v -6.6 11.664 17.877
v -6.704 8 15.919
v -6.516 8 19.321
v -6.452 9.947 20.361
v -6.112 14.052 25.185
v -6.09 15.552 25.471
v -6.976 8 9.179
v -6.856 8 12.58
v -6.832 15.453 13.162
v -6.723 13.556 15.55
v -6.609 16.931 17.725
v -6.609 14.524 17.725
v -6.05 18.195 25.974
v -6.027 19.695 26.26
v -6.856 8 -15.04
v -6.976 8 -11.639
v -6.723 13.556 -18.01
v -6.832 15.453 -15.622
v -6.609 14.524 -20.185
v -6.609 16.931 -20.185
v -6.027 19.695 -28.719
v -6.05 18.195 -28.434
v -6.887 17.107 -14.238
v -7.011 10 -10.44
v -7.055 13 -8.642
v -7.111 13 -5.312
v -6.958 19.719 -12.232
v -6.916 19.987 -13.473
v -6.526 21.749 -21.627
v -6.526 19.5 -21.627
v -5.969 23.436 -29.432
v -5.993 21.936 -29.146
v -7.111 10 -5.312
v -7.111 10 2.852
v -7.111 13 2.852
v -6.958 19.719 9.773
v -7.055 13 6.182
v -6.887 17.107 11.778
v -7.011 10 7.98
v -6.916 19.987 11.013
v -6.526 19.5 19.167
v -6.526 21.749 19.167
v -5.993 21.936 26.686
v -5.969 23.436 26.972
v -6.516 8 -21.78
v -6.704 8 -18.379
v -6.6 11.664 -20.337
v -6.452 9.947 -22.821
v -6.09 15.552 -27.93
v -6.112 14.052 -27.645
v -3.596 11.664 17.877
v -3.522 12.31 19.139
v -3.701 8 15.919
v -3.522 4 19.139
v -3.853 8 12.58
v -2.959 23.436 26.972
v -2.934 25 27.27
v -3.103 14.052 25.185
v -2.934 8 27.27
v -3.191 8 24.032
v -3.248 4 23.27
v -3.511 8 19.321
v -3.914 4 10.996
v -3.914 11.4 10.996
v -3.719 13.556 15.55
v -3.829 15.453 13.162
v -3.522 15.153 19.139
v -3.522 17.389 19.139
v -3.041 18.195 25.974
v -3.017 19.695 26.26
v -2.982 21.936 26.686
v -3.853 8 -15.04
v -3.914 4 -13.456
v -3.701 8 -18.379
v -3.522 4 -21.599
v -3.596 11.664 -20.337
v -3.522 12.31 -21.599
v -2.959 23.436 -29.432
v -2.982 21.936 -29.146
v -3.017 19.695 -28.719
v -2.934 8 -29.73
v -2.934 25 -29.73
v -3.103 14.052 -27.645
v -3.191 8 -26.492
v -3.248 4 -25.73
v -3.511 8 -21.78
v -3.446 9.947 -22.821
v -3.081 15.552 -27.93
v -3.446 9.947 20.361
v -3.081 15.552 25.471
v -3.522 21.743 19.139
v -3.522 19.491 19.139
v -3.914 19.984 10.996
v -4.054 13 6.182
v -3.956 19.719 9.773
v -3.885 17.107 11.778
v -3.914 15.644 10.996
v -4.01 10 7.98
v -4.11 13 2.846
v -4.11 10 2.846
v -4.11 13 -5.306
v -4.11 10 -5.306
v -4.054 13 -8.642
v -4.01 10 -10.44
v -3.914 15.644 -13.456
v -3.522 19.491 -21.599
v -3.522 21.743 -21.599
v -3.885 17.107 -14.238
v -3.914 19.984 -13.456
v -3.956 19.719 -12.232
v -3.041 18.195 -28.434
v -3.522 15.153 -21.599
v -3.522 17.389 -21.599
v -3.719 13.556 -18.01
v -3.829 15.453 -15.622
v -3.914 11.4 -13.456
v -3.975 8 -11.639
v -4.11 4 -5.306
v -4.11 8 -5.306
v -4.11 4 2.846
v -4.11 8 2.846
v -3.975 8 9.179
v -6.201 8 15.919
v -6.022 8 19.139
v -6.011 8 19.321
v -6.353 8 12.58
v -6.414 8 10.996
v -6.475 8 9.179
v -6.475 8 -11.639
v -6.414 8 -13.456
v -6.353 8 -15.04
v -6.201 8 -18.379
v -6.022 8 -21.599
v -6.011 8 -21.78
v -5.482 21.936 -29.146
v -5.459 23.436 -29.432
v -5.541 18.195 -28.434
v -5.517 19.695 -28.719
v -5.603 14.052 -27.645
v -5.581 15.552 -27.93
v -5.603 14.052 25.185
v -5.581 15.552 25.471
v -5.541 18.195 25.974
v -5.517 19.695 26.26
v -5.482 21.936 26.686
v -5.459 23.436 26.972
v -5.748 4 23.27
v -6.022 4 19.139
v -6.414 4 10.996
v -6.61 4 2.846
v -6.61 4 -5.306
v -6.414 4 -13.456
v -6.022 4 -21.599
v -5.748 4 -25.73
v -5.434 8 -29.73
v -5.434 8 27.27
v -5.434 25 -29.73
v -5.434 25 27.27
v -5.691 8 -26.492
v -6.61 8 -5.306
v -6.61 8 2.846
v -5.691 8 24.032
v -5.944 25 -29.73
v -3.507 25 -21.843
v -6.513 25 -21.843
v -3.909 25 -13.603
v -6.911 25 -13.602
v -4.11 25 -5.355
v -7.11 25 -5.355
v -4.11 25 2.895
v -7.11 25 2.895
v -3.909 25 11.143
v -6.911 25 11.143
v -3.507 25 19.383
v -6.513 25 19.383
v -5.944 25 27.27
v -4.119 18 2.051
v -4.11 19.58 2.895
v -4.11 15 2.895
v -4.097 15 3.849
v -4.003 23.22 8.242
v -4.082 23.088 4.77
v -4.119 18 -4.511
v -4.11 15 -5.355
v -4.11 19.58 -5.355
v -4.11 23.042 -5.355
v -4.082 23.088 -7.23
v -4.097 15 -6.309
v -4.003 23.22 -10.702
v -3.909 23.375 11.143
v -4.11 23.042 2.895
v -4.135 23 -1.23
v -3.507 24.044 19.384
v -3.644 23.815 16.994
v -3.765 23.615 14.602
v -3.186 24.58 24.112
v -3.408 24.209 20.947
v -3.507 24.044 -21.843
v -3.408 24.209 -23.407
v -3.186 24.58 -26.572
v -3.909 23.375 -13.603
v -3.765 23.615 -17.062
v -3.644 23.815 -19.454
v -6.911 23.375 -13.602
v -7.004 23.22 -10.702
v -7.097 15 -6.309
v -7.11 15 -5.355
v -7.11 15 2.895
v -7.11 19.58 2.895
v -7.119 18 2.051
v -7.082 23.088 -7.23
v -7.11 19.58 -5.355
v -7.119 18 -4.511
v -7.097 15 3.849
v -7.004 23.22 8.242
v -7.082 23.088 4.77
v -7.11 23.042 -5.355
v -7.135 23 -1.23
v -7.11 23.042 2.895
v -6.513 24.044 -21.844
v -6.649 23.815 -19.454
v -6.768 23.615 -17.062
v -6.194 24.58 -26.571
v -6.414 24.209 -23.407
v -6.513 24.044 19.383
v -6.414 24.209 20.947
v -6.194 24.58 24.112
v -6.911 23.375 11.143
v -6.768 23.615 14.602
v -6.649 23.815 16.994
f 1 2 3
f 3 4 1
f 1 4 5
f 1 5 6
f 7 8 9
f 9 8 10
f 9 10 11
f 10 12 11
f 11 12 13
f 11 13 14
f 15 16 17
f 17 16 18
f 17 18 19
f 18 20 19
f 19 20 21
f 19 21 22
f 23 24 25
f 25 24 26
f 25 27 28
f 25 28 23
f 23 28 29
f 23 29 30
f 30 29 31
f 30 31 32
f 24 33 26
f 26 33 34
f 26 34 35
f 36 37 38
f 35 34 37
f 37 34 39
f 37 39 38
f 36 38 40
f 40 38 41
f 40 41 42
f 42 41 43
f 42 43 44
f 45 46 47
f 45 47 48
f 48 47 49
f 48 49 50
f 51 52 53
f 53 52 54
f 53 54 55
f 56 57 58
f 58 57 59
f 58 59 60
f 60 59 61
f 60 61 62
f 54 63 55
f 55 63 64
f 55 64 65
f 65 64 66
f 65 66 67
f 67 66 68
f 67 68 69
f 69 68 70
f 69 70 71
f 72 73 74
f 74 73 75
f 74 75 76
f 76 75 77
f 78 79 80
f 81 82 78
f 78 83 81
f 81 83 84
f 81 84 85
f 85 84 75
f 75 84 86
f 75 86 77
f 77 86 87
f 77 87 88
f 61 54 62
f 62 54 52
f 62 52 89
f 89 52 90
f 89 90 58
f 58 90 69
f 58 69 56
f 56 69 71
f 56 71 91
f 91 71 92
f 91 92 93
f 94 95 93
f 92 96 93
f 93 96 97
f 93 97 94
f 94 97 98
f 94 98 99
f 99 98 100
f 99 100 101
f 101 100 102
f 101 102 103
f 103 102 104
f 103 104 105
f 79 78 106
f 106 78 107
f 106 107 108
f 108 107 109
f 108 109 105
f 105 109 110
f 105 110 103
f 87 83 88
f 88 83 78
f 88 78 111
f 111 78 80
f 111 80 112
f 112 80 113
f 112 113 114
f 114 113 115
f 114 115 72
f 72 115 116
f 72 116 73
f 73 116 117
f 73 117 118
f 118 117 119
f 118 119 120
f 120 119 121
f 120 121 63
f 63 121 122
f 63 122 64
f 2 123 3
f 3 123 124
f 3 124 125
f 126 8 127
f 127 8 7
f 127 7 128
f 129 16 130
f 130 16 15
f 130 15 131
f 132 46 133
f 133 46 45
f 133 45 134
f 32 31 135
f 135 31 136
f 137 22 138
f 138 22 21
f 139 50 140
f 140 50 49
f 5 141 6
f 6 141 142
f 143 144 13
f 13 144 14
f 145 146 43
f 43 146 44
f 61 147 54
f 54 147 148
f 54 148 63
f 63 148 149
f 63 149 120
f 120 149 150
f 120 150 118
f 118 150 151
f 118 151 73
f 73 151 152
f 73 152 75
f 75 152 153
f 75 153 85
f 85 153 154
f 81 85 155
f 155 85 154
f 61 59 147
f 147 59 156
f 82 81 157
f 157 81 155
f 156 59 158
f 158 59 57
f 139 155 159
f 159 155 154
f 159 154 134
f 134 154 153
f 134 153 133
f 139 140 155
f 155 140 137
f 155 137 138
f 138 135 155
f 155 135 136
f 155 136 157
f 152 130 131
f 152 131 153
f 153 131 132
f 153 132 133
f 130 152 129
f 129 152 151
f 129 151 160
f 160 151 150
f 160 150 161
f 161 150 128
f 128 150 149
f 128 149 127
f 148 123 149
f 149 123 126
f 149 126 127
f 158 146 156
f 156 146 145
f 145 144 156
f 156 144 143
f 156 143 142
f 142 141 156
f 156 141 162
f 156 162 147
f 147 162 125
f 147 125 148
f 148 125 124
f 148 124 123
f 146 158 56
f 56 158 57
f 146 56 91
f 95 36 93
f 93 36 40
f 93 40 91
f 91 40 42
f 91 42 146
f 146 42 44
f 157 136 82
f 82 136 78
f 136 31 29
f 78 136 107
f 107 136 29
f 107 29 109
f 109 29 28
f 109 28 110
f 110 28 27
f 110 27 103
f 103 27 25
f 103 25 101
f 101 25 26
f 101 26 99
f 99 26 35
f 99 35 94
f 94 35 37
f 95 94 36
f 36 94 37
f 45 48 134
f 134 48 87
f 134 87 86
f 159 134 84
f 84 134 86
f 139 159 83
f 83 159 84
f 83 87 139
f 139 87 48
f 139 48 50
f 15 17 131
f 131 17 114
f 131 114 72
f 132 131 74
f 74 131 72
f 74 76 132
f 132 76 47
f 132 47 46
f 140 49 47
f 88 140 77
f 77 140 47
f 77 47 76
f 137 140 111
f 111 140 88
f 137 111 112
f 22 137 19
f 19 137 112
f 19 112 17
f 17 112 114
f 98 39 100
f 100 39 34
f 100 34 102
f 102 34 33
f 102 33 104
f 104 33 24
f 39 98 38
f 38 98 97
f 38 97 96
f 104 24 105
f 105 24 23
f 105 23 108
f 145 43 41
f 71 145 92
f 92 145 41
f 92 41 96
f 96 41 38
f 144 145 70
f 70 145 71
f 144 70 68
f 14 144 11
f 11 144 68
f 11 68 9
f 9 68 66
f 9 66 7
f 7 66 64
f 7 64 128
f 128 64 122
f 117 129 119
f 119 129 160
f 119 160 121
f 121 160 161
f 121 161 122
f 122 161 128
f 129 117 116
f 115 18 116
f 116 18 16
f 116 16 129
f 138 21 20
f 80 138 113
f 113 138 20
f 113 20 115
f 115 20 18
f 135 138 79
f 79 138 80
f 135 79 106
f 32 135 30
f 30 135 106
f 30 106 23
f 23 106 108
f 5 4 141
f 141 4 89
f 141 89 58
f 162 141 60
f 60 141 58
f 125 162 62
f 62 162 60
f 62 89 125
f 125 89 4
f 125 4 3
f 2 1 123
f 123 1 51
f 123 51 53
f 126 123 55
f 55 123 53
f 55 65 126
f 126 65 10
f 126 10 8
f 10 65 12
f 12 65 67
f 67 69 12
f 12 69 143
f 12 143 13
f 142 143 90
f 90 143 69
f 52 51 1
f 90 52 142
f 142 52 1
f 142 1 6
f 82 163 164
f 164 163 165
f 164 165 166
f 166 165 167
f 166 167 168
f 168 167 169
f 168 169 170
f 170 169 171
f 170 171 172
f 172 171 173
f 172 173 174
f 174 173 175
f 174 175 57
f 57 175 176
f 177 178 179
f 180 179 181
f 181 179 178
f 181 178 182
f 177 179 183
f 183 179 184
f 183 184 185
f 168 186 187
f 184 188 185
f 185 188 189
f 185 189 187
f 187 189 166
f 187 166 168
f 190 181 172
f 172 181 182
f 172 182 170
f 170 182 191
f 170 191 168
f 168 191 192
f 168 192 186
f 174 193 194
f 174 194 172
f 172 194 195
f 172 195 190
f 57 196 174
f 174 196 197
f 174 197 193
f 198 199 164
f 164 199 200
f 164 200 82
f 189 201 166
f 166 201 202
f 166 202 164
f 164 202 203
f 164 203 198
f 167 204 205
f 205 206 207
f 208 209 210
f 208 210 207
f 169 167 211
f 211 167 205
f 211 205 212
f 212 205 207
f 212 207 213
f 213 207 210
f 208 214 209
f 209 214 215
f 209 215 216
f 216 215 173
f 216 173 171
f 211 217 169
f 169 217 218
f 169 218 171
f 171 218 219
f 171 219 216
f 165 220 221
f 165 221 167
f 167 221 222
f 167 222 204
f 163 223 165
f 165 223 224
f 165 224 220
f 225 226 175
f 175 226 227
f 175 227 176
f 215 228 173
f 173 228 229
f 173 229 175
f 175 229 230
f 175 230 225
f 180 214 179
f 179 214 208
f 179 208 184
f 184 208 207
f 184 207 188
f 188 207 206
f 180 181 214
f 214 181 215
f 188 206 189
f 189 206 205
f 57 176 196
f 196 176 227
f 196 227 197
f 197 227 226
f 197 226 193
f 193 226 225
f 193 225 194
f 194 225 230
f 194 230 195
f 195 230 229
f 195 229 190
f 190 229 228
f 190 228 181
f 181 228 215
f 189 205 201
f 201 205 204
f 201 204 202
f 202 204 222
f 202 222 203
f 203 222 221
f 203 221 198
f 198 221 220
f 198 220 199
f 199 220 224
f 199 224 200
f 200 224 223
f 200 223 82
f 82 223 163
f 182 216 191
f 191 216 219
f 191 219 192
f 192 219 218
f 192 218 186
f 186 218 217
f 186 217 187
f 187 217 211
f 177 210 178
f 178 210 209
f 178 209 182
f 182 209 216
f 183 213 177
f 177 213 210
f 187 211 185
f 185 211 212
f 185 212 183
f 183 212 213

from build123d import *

# Parameters (mm, degrees)
BOSS_EXTRUDE1_DEPTH      = 25
CUT_EXTRUDE1_DEPTH       = 80.24352506
CUT_EXTRUDE1_DEPTH_BACK  = 80.24352506
SKETCH4_W                = 163.693306888
SKETCH4_H                = 40.024571377
CUT_EXTRUDE3_START       = 2.86496876
CUT_EXTRUDE3_DEPTH       = 1.701411362
CUT_EXTRUDE3_START_2     = 4
CUT_EXTRUDE3_2_DEPTH     = 21
CUT_EXTRUDE3_START_3     = -19
CUT_EXTRUDE3_3_OUTLINE_W = 1.566380122
CUT_EXTRUDE3_3_OUTLINE_H = 41.625991854
CUT_EXTRUDE3_3_DEPTH     = 3.634613826
CUT_EXTRUDE3_START_4     = -15.365386174
CUT_EXTRUDE3_4_OUTLINE_W = 1.566380122
CUT_EXTRUDE3_4_OUTLINE_H = 4.374008146
CUT_EXTRUDE3_4_DEPTH     = 52.325901807
CUT_EXTRUDE8_DEPTH       = 40.481678639
CUT_EXTRUDE8_DEPTH_BACK  = 40.481678639


with BuildPart() as part:
    # Sketch1 → Boss-Extrude1 (new body)
    with BuildSketch(Plane(origin=(0, 0, 0), x_dir=(1, 0, 0), z_dir=(0, 1, 0))):
        with BuildLine():
            Line((4.907868645, 71.729937519), (8.36496876, 71.729937519))
            Line((8.36496876, 71.729937519), (8.36496876, 74.729937519))
            Line((8.36496876, 74.729937519), (4.907868645, 74.729937519))
            ThreePointArc((4.907868645, 74.729937519), (1.752478587, 73.608534376), (0.01247426, 70.74734295))
            ThreePointArc((0.01247426, 70.74734295), (-7.13503124, 1.229937519), (0.01247426, -68.287467911))
            ThreePointArc((0.01247426, -68.287467911), (1.752478587, -71.148659338), (4.907868645, -72.270062481))
            Line((4.907868645, -72.270062481), (8.36496876, -72.270062481))
            Line((8.36496876, -72.270062481), (8.36496876, -69.270062481))
            Line((8.36496876, -69.270062481), (4.907868645, -69.270062481))
            ThreePointArc((4.907868645, -69.270062481), (3.645712622, -68.821501224), (2.949710891, -67.677024653))
            ThreePointArc((2.949710891, -67.677024653), (-4.13503124, 1.229937519), (2.949710891, 70.136899691))
            ThreePointArc((2.949710891, 70.136899691), (3.645712622, 71.281376262), (4.907868645, 71.729937519))
        make_face()
    extrude(amount=BOSS_EXTRUDE1_DEPTH)

    # Sketch4 → Cut-Extrude1 (cut, two sides: drawn at the far end of the back side and taken through both)
    with BuildSketch(Plane(origin=(0, 0, 0), x_dir=(0, 0, -1), z_dir=(1, 0, 0)).offset(-CUT_EXTRUDE1_DEPTH_BACK)):
        with Locations((-1.406411494, 10.890491369)):
            Rectangle(SKETCH4_W, SKETCH4_H)
        Polygon((25.729937519, 4), (-23.270062481, 4), (-27.270062481, 8), (-27.270062481, 25), (29.729937519, 25), (29.729937519, 8), align=None, mode=Mode.SUBTRACT)
    extrude(amount=CUT_EXTRUDE1_DEPTH + CUT_EXTRUDE1_DEPTH_BACK, mode=Mode.SUBTRACT)

    # Cut-Extrude3: read off the stored shape, not the designer's step
    # Cut-Extrude3 outline → Cut-Extrude3 (cut)
    with BuildSketch(Plane(origin=(-10, 0, 0), x_dir=(0, 0, -1), z_dir=(1, 0, 0)).offset(CUT_EXTRUDE3_START)):
        Polygon((26.491842281, 8), (-24.031967243, 8), (-27.270062481, 25), (-27.270062481, 8), (-23.270062481, 4), (25.729937519, 4), (29.729937519, 8), (29.729937519, 25), align=None)
    extrude(amount=CUT_EXTRUDE3_DEPTH, mode=Mode.SUBTRACT)

    # Cut-Extrude3 2 outline → Cut-Extrude3 2 (add)
    with BuildSketch(Plane(origin=(0, 0, 0), x_dir=(1, 0, 0), z_dir=(0, 1, 0)).offset(CUT_EXTRUDE3_START_2)):
        with BuildLine():
            ThreePointArc((-5.433619878, 29.729937519), (-6.63503124, 1.229937519), (-5.433619878, -27.270062481))
            Line((-5.433619878, -27.270062481), (-5.433619878, 29.729937519))
        make_face()
    extrude(amount=CUT_EXTRUDE3_2_DEPTH)

    # Cut-Extrude3 3 outline → Cut-Extrude3 3 (cut)
    with BuildSketch(Plane(origin=(0, 0, 0), x_dir=(1, 0, 0), z_dir=(0, 0.7071067811865476, 0.7071067811865476)).offset(CUT_EXTRUDE3_START_3)):
        with Locations((-6.216809939, 7.187004073)):
            Rectangle(CUT_EXTRUDE3_3_OUTLINE_W, CUT_EXTRUDE3_3_OUTLINE_H)
    extrude(amount=CUT_EXTRUDE3_3_DEPTH, mode=Mode.SUBTRACT)

    # Cut-Extrude3 4 outline → Cut-Extrude3 4 (cut)
    with BuildSketch(Plane(origin=(0, 0, 0), x_dir=(1, 0, 0), z_dir=(0, 0.7071067811865476, 0.7071067811865476)).offset(CUT_EXTRUDE3_START_4)):
        with Locations((-6.216809939, -15.812995927)):
            Rectangle(CUT_EXTRUDE3_4_OUTLINE_W, CUT_EXTRUDE3_4_OUTLINE_H)
    extrude(amount=CUT_EXTRUDE3_4_DEPTH, mode=Mode.SUBTRACT)

    # Sketch8 → Cut-Extrude8 (cut, two sides: drawn at the far end of the back side and taken through both)
    with BuildSketch(Plane(origin=(-10, 0, 0), x_dir=(0, 0, -1), z_dir=(1, 0, 0)).offset(-CUT_EXTRUDE8_DEPTH_BACK)):
        with BuildLine():
            Line((6.308934185, 15), (1.229937519, 15))
            Line((1.229937519, 15), (1.229937519, 13))
            Line((1.229937519, 13), (8.641627042, 13))
            Line((8.641627042, 13), (12.232486064, 19.719117213))
            Line((12.232486064, 19.719117213), (29.431983471, 23.435741248))
            Line((29.431983471, 23.435741248), (29.729937519, 25))
            ThreePointArc((29.729937519, 25), (20.236755242, 23.88709601), (10.701873099, 23.219947174))
            Line((10.701873099, 23.219947174), (6.308934185, 15))
        make_face()
        with BuildLine():
            Line((1.229937519, 13), (1.229937519, 15))
            Line((1.229937519, 15), (-3.849059147, 15))
            Line((-3.849059147, 15), (-8.241998061, 23.219947174))
            ThreePointArc((-8.241998061, 23.219947174), (-17.776880204, 23.88709601), (-27.270062481, 25))
            Line((-27.270062481, 25), (-26.972108433, 23.435741248))
            Line((-26.972108433, 23.435741248), (-9.772611026, 19.719117213))
            Line((-9.772611026, 19.719117213), (-6.181752003, 13))
            Line((-6.181752003, 13), (1.229937519, 13))
        make_face()
        Polygon((10.439895671, 10), (1.229937519, 10), (1.229937519, 8), (11.638741425, 8), (15.621568327, 15.452556791), (28.719498973, 19.695197632), (29.146269185, 21.935741248), (14.237865718, 17.106657698), align=None)
        Polygon((1.229937519, 8), (1.229937519, 10), (-7.980020633, 10), (-11.77799068, 17.106657698), (-26.686394147, 21.935741248), (-26.259623935, 19.695197632), (-13.161693289, 15.452556791), (-9.178866387, 8), align=None)
        Polygon((18.009568459, 13.556046251), (15.040282736, 8), (18.378948493, 8), (20.33686857, 11.663606509), (27.93038346, 15.552341188), (28.433784687, 18.195197632), align=None)
        Polygon((-17.876993532, 11.663606509), (-15.919073455, 8), (-12.580407697, 8), (-15.54969342, 13.556046251), (-25.973909649, 18.195197632), (-25.470508422, 15.552341188), align=None)
        Polygon((-25.184794136, 14.052341188), (-20.361334539, 9.947366382), (-19.320614766, 8), (-24.031967243, 8), align=None)
        Polygon((22.821209577, 9.947366382), (21.780489804, 8), (26.491842281, 8), (27.644669174, 14.052341188), align=None)
        with BuildLine():
            Line((1.229937519, 23), (1.229937519, 18))
            Line((1.229937519, 18), (4.510665555, 18))
            Line((4.510665555, 18), (7.229937519, 23.088227342))
            ThreePointArc((7.229937519, 23.088227342), (4.230261838, 23.022058028), (1.229937519, 23))
        make_face()
        with BuildLine():
            Line((-2.050790517, 18), (1.229937519, 18))
            Line((1.229937519, 18), (1.229937519, 23))
            ThreePointArc((1.229937519, 23), (-1.770386799, 23.022058028), (-4.770062481, 23.088227342))
            Line((-4.770062481, 23.088227342), (-2.050790517, 18))
        make_face()
    extrude(amount=CUT_EXTRUDE8_DEPTH + CUT_EXTRUDE8_DEPTH_BACK, mode=Mode.SUBTRACT)


with BuildPart() as cut_extrude8_piece_1:
    # of the separate pieces the step leaves, piece 1, a body of its own (cut_extrude8_pieces)
    add(part.part.solids().sort_by_distance((-2.933619878, 8, 27.270062481))[0])


with BuildPart() as cut_extrude8_piece_2:
    # of the separate pieces the step leaves, piece 2, a body of its own (cut_extrude8_pieces)
    add(part.part.solids().sort_by_distance((-4.002538103, 23.219947174, 8.241998061))[0])


solid = Compound([cut_extrude8_piece_1.part, cut_extrude8_piece_2.part])
